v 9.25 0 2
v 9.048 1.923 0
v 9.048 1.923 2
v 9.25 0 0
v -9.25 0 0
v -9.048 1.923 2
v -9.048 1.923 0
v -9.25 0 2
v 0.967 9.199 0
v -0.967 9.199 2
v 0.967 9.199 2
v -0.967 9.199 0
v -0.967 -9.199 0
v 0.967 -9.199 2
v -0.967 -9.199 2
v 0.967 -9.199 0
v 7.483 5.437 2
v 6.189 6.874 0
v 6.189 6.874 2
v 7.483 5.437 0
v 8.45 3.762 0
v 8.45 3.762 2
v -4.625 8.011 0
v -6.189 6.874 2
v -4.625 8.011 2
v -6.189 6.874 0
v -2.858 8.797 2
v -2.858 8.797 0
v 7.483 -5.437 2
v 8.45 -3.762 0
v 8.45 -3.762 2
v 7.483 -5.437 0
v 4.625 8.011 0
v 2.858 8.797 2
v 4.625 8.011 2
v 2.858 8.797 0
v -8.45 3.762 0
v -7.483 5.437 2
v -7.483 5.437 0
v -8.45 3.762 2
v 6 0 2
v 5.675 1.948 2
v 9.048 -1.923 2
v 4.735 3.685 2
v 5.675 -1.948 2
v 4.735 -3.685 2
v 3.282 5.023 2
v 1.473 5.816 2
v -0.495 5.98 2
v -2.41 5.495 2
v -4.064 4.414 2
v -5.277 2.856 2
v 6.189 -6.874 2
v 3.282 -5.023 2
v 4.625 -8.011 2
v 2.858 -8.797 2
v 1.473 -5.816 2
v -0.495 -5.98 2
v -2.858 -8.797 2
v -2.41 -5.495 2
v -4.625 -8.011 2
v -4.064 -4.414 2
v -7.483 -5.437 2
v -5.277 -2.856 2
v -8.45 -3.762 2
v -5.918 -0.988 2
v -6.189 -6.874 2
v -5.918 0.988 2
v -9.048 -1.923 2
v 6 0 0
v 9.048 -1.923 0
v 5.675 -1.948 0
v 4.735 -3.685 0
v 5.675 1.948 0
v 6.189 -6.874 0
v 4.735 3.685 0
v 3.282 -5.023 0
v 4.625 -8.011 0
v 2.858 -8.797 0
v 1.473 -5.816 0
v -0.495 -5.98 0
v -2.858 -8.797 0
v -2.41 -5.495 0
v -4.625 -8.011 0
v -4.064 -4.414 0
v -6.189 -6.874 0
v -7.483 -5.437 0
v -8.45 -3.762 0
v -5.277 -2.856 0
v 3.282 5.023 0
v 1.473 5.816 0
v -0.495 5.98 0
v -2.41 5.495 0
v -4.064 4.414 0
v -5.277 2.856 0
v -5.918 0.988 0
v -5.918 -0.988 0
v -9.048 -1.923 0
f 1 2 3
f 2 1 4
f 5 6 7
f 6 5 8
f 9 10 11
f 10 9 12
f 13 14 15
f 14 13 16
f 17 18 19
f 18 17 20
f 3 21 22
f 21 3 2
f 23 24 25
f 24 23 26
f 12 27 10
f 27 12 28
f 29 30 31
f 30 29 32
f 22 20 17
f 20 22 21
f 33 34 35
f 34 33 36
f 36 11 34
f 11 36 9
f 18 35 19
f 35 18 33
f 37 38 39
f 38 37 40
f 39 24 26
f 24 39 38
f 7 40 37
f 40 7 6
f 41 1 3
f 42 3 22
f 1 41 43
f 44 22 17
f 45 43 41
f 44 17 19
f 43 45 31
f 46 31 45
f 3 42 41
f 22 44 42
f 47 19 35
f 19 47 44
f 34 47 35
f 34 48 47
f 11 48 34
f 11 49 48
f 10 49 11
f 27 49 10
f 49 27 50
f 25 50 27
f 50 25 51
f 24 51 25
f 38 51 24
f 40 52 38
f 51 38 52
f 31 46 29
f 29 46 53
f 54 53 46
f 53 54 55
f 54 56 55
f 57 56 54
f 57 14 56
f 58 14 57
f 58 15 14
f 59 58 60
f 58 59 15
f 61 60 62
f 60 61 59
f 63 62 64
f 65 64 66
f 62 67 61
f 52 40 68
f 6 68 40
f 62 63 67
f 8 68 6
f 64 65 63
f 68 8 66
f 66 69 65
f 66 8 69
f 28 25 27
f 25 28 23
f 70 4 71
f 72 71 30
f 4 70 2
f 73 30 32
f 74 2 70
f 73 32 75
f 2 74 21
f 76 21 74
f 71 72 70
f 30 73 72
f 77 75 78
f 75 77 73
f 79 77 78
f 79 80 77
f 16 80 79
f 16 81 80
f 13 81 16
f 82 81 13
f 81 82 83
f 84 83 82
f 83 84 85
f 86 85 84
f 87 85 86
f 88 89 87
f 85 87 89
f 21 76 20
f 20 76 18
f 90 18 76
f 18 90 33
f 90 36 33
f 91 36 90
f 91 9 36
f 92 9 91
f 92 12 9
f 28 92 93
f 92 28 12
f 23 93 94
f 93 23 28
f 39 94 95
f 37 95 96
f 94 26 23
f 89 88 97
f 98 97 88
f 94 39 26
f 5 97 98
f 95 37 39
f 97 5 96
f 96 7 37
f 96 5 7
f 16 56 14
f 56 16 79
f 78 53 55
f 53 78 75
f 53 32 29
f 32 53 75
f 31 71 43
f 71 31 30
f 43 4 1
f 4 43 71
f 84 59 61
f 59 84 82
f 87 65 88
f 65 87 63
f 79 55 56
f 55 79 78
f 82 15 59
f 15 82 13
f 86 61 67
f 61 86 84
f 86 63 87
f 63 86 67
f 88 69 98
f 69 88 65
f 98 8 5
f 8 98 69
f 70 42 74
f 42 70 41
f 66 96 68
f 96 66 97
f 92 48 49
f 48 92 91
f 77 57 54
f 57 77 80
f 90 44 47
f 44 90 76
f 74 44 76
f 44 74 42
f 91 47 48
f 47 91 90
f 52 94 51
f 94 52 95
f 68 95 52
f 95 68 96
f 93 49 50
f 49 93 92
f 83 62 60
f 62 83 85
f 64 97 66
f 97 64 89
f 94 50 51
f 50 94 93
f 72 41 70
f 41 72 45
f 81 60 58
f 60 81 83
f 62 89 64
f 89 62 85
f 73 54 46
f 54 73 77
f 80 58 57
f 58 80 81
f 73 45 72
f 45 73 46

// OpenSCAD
difference() {
    cylinder(h=2, r1=18.5/2, r2=18.5/2, center=false);
    cylinder(h=2, r1=12/2, r2=12/2, center=false);
}
